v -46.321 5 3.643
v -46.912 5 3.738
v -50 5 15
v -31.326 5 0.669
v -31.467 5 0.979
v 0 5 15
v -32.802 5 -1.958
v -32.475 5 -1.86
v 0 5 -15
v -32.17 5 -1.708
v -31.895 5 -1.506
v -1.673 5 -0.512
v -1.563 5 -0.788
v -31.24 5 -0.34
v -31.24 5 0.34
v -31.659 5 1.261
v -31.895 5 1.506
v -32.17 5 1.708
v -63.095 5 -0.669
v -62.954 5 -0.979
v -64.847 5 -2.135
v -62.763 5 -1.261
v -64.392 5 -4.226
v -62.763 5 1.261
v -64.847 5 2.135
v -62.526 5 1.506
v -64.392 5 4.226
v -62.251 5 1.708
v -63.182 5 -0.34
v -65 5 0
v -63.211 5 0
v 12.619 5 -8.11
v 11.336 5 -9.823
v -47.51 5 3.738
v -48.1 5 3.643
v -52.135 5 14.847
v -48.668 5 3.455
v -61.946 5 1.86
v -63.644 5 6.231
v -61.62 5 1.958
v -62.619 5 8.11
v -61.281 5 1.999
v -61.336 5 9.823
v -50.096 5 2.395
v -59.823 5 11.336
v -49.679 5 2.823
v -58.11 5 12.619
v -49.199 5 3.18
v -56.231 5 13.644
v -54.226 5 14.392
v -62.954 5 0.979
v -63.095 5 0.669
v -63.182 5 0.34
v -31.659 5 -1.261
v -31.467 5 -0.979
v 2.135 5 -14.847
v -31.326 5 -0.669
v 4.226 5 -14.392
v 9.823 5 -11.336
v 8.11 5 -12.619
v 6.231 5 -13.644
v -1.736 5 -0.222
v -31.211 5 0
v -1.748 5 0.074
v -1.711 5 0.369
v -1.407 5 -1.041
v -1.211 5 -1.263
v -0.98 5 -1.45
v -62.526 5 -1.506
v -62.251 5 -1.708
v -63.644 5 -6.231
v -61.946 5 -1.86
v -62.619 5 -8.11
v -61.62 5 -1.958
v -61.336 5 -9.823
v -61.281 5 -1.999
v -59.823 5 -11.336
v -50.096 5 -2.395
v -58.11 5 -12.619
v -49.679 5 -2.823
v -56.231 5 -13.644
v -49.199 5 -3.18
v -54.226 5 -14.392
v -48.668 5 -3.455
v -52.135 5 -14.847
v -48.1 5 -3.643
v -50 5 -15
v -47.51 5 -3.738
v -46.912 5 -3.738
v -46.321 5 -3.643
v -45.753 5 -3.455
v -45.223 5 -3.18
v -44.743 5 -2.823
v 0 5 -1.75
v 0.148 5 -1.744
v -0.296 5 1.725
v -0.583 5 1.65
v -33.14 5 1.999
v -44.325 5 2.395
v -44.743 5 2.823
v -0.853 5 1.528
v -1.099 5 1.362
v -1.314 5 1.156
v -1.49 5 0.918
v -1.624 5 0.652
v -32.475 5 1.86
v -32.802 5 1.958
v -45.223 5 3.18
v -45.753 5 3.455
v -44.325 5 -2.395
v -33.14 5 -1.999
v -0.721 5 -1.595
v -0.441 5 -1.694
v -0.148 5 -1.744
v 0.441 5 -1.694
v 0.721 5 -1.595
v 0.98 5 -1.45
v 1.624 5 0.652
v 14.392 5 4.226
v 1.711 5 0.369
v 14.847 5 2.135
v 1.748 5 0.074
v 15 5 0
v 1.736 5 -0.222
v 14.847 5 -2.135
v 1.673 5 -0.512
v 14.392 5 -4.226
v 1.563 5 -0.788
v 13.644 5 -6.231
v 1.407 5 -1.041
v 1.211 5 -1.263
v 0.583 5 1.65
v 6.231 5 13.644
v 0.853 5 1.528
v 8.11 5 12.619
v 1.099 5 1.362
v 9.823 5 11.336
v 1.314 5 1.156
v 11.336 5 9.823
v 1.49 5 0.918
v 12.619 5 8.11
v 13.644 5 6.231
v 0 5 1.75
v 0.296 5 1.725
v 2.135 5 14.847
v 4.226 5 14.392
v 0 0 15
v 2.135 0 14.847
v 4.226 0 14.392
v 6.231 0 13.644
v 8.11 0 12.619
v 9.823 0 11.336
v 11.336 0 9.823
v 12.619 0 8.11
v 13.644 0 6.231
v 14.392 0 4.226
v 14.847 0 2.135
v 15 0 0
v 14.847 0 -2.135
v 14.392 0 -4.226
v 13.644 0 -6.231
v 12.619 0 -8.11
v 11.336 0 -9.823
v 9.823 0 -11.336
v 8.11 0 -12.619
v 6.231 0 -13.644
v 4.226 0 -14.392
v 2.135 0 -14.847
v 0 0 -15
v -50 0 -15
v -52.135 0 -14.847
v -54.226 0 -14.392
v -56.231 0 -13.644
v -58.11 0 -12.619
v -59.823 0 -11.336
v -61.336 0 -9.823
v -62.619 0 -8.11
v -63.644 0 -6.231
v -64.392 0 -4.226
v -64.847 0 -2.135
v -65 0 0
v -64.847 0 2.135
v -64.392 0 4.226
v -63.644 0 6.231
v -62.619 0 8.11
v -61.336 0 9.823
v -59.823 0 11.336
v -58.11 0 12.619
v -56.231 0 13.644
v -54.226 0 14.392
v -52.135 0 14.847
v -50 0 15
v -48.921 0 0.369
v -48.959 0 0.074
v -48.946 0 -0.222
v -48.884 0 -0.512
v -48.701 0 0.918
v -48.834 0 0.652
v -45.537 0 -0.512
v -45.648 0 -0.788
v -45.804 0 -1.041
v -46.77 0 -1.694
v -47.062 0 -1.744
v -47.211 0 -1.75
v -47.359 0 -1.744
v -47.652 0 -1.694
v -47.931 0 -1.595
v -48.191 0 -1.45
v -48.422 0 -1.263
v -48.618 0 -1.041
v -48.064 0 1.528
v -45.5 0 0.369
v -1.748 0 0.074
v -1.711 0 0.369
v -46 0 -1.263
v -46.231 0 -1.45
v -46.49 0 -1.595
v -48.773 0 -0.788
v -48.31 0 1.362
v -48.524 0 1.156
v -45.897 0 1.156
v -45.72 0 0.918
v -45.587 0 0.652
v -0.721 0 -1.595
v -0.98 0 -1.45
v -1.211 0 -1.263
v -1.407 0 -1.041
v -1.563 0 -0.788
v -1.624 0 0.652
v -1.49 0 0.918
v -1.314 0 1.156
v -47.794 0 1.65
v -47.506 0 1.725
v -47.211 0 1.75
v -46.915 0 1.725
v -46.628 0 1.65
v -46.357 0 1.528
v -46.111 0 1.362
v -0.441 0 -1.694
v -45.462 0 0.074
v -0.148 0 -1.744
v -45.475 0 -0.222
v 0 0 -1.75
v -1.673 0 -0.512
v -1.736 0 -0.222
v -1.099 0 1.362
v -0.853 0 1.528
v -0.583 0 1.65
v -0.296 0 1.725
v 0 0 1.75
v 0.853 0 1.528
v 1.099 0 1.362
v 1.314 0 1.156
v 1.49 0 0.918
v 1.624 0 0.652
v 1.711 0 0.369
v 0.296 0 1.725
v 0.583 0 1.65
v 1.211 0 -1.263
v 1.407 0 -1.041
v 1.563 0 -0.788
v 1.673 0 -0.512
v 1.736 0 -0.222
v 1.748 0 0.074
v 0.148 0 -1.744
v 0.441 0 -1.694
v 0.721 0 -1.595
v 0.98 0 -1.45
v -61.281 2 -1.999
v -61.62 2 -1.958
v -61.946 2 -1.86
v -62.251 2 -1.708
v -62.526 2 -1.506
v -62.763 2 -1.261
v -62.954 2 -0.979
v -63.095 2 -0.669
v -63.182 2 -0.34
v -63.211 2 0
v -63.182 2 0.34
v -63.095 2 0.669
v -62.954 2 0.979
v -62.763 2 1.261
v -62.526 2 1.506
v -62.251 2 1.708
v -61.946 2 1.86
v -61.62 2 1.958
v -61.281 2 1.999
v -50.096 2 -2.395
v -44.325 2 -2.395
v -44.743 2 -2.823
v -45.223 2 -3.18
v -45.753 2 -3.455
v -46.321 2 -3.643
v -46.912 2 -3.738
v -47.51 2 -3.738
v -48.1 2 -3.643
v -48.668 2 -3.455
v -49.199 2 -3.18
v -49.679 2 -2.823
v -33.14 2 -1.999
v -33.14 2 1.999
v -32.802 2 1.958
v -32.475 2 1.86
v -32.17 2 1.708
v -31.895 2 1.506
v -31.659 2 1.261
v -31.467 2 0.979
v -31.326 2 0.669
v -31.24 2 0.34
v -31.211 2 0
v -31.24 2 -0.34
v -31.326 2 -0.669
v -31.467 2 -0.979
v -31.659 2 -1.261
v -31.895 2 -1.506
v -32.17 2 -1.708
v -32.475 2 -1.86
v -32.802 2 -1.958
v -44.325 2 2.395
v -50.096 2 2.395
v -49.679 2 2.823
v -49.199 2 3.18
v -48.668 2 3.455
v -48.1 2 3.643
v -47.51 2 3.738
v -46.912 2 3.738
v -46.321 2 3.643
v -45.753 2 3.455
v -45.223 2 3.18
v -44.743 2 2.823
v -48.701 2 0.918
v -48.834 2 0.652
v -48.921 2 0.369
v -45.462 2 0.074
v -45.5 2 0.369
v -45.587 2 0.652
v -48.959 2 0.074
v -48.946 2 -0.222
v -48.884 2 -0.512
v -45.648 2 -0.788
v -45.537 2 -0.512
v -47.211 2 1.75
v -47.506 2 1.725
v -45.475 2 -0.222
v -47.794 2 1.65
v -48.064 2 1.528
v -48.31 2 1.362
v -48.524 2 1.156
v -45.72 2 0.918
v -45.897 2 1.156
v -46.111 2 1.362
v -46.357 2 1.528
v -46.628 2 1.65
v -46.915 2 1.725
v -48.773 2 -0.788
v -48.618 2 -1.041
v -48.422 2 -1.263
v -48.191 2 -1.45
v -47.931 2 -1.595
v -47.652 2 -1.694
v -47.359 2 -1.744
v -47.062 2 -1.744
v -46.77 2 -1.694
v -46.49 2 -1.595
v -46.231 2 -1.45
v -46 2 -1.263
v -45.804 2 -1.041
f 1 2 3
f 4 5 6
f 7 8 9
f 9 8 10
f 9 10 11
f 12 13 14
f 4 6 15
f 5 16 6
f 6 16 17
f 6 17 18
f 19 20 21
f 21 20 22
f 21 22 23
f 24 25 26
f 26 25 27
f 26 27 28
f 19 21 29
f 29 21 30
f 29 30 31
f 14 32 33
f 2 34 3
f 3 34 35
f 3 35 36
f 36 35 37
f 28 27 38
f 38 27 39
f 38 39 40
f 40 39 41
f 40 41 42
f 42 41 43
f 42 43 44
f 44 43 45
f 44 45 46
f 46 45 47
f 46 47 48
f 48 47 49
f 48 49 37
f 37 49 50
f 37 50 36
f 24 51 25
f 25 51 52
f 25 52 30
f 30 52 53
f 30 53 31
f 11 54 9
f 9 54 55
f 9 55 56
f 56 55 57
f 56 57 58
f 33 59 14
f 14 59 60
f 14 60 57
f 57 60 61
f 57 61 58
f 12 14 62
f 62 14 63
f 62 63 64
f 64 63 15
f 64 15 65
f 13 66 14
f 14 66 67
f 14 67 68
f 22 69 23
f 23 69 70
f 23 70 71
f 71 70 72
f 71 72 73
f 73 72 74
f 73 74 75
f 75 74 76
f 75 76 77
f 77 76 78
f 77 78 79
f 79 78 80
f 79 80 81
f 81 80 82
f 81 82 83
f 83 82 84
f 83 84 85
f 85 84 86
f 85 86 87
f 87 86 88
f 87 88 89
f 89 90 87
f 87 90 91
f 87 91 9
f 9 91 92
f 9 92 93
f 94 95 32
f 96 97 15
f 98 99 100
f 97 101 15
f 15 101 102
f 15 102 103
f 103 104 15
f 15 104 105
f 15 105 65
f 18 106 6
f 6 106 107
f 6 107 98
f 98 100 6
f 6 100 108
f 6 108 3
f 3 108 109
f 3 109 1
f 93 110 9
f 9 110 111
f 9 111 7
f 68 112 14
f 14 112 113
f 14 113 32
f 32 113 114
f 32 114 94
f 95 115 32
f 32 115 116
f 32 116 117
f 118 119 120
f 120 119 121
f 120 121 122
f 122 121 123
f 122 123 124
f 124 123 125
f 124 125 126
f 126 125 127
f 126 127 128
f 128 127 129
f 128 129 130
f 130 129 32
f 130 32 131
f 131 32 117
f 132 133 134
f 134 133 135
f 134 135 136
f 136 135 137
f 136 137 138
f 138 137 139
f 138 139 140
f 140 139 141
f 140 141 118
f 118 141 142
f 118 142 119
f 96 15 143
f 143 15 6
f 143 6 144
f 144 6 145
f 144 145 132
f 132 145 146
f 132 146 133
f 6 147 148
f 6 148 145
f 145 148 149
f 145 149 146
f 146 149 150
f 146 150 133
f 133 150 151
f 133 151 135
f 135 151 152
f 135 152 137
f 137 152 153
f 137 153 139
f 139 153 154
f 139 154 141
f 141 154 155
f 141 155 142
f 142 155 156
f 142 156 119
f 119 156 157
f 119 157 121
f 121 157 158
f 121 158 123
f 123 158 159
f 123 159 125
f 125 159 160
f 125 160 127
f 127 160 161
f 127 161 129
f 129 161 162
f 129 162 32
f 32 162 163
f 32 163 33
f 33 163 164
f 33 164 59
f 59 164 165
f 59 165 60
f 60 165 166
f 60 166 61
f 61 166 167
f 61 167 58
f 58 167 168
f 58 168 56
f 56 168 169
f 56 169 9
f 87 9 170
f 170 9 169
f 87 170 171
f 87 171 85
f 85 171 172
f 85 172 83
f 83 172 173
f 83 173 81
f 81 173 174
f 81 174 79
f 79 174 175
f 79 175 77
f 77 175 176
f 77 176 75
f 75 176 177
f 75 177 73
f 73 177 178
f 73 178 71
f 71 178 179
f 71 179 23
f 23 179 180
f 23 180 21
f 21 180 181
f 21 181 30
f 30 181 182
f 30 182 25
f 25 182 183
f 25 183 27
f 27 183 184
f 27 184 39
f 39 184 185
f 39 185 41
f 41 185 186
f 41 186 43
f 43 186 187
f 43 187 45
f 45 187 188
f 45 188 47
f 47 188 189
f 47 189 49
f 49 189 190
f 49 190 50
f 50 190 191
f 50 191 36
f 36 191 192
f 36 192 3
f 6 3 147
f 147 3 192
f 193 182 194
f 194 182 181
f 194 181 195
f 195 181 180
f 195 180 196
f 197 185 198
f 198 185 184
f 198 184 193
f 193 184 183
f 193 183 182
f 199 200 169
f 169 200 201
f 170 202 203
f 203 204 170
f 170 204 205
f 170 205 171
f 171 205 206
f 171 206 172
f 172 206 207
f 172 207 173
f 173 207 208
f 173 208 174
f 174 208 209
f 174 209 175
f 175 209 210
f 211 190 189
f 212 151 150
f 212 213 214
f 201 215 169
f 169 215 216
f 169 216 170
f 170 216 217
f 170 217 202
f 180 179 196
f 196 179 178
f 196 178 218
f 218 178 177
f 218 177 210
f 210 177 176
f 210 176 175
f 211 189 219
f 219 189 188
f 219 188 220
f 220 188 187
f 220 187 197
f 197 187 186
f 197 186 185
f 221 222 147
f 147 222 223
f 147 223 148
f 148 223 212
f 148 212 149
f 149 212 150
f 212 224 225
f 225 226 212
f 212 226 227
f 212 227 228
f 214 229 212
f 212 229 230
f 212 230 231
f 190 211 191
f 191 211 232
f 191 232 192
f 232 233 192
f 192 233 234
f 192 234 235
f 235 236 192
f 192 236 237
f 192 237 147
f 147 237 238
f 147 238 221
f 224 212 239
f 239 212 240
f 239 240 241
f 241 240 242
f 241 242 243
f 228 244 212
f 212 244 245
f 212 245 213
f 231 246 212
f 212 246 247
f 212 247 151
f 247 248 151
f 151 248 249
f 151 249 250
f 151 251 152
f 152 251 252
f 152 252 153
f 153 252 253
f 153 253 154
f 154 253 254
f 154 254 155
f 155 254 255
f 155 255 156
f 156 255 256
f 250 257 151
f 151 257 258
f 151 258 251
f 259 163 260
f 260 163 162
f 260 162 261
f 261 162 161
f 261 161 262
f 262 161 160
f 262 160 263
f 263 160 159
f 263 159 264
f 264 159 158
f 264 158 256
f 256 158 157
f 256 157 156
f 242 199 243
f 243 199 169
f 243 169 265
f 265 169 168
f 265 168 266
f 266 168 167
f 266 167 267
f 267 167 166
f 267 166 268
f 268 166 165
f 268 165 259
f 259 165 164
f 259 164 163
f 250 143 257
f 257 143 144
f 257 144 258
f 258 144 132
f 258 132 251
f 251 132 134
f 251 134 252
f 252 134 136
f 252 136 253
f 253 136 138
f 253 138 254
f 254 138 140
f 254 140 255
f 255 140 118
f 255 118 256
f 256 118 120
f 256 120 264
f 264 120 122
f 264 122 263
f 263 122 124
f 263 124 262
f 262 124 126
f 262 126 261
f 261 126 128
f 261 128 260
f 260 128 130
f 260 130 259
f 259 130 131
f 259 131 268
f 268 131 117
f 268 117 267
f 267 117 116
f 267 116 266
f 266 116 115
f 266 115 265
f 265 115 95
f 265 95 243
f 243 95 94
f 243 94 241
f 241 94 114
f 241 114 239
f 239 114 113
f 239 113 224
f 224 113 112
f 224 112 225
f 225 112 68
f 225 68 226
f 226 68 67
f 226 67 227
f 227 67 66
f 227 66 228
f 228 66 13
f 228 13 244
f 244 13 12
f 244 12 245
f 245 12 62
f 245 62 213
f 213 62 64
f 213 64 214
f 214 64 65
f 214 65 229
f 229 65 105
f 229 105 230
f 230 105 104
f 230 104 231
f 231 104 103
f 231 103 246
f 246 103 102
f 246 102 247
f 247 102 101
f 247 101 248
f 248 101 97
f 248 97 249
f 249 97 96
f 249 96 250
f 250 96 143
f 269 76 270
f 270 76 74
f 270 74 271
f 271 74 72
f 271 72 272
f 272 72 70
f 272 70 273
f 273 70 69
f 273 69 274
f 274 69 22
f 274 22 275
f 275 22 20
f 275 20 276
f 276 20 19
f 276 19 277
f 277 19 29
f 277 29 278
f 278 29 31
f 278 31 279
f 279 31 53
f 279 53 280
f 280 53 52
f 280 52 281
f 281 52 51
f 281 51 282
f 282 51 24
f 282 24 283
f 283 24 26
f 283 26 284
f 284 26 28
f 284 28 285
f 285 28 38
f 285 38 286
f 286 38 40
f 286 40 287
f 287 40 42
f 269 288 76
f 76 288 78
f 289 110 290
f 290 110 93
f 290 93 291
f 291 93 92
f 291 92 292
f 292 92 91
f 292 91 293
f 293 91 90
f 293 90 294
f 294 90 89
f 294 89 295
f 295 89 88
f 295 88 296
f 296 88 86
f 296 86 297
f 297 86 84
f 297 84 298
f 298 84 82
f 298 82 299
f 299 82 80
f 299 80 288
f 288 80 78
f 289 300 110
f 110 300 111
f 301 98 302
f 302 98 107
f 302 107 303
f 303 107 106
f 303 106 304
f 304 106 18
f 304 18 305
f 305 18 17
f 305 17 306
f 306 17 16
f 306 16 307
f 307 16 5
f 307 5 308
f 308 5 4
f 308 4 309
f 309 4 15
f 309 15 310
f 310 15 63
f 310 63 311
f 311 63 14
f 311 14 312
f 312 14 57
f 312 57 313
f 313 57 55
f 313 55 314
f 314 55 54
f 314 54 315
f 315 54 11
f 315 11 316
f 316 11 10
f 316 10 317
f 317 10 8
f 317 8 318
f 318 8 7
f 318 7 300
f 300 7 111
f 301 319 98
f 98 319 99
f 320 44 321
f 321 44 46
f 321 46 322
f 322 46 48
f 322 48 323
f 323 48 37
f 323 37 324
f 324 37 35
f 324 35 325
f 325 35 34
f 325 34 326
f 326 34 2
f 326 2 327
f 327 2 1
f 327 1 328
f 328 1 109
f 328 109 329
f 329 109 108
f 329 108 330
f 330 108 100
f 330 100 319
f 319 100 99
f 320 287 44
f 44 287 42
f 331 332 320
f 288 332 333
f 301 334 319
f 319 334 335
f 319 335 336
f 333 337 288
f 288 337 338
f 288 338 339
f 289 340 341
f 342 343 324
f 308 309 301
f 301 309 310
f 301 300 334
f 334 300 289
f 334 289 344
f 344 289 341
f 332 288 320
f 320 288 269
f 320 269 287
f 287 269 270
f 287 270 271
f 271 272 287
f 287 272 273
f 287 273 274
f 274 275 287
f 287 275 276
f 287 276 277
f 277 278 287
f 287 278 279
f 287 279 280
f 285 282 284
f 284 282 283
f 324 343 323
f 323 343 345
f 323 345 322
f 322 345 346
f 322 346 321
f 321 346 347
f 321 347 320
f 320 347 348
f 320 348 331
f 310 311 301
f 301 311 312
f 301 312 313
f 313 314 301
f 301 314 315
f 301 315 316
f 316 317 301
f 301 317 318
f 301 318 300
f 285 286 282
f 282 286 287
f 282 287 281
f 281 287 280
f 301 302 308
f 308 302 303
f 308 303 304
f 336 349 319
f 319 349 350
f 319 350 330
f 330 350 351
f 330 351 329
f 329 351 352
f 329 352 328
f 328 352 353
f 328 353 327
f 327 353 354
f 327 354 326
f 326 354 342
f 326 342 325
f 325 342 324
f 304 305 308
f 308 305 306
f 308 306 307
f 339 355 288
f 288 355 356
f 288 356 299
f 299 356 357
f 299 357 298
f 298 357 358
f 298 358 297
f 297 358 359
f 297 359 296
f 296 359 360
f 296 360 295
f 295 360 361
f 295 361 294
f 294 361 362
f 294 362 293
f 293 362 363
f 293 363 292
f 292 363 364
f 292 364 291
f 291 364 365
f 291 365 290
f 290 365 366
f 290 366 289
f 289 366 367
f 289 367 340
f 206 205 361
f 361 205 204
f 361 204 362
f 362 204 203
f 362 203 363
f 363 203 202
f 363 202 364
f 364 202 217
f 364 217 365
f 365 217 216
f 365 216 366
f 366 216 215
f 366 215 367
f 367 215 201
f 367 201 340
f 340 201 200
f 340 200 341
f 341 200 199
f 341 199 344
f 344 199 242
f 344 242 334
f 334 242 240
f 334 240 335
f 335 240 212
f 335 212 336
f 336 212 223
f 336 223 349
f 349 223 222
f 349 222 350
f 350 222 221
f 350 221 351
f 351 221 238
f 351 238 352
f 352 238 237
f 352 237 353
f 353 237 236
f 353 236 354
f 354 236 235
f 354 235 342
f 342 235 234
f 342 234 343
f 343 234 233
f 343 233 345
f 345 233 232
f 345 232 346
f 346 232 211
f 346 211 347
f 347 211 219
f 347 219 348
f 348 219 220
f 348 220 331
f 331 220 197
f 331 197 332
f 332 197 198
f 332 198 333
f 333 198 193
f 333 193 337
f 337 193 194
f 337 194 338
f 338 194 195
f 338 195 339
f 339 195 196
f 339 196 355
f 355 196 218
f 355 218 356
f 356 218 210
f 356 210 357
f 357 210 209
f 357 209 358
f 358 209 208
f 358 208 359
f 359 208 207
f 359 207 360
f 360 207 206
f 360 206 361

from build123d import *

# Parameters (mm, degrees)
RESSALTO_EXTRUS_O2_DEPTH = 5
ESBO_O4_R                = 1.75
CORTE_EXTRUS_O1_DEPTH    = 10
CORTE_EXTRUS_O2_DEPTH    = 3
ESBO_O7_R                = 2.5
CORTE_EXTRUS_O3_DEPTH    = 3
ESBO_O12_R               = 1.75
CORTE_EXTRUS_O5_DEPTH    = 10


with BuildPart() as part:
    # Esboço3 → Ressalto-extrusão2 (new body)
    with BuildSketch(Plane(origin=(0, 0, 0), x_dir=(1, 0, 0), z_dir=(0, 1, 0))):
        with BuildLine():
            Line((-50, 15), (0, 15))
            ThreePointArc((0, 15), (15, 0), (0, -15))
            Line((0, -15), (-50, -15))
            ThreePointArc((-50, -15), (-65, 0), (-50, 15))
        make_face()
    extrude(amount=RESSALTO_EXTRUS_O2_DEPTH)

    # Esboço4 → Corte-extrusão1 (cut)
    with BuildSketch(Plane(origin=(0, 5, 0), x_dir=(1, 0, 0), z_dir=(0, 1, 0))):
        with Locations(Location((0, 0, 0), (0, 0, 90))):
            Circle(ESBO_O4_R)
    extrude(amount=-CORTE_EXTRUS_O1_DEPTH, mode=Mode.SUBTRACT)

    # Esboço6 → Corte-extrusão2 (cut)
    with BuildSketch(Plane(origin=(0, 5, 0), x_dir=(1, 0, 0), z_dir=(0, 1, 0))):
        with BuildLine():
            Line((-50.096108497, 2.395111434), (-61.281465627, 1.998745461))
            ThreePointArc((-61.281465627, 1.998745461), (-63.210637787, 0), (-61.281465627, -1.998745461))
            Line((-61.281465627, -1.998745461), (-50.096108497, -2.395111434))
            ThreePointArc((-50.096108497, -2.395111434), (-47.210637787, -3.75), (-44.325167077, -2.395111434))
            Line((-44.325167077, -2.395111434), (-33.139809947, -1.998745461))
            ThreePointArc((-33.139809947, -1.998745461), (-31.210637787, 0), (-33.139809947, 1.998745461))
            Line((-33.139809947, 1.998745461), (-44.325167077, 2.395111434))
            ThreePointArc((-44.325167077, 2.395111434), (-47.210637787, 3.75), (-50.096108497, 2.395111434))
        make_face()
        with BuildLine():
            ThreePointArc((-47.443873787, 2.489096416), (-47.210637787, 2.5), (-46.977401787, 2.489096416))
            ThreePointArc((-46.977401787, 2.489096416), (-45.362247947, 1.683286963), (-44.710637787, 0))
            ThreePointArc((-44.710637787, 0), (-45.362247947, -1.683286963), (-46.977401787, -2.489096416))
            ThreePointArc((-46.977401787, -2.489096416), (-47.210637787, -2.5), (-47.443873787, -2.489096416))
            ThreePointArc((-47.443873787, -2.489096416), (-49.710637787, 0), (-47.443873787, 2.489096416))
        make_face(mode=Mode.SUBTRACT)
    extrude(amount=-CORTE_EXTRUS_O2_DEPTH, mode=Mode.SUBTRACT)

    # Esboço7 → Corte-extrusão3 (cut)
    with BuildSketch(Plane(origin=(0, 5, 0), x_dir=(1, 0, 0), z_dir=(0, 1, 0))):
        with Locations((-47.210637787, 0)):
            Circle(ESBO_O7_R)
    extrude(amount=-CORTE_EXTRUS_O3_DEPTH, mode=Mode.SUBTRACT)

    # Esboço12 → Corte-extrusão5 (cut)
    with BuildSketch(Plane(origin=(0, 2, 0), x_dir=(1, 0, 0), z_dir=(0, 1, 0))):
        with Locations(Location((-47.210637787, 0, 0), (0, 0, 270))):
            Circle(ESBO_O12_R)
    extrude(amount=-CORTE_EXTRUS_O5_DEPTH, mode=Mode.SUBTRACT)


solid = part.part
